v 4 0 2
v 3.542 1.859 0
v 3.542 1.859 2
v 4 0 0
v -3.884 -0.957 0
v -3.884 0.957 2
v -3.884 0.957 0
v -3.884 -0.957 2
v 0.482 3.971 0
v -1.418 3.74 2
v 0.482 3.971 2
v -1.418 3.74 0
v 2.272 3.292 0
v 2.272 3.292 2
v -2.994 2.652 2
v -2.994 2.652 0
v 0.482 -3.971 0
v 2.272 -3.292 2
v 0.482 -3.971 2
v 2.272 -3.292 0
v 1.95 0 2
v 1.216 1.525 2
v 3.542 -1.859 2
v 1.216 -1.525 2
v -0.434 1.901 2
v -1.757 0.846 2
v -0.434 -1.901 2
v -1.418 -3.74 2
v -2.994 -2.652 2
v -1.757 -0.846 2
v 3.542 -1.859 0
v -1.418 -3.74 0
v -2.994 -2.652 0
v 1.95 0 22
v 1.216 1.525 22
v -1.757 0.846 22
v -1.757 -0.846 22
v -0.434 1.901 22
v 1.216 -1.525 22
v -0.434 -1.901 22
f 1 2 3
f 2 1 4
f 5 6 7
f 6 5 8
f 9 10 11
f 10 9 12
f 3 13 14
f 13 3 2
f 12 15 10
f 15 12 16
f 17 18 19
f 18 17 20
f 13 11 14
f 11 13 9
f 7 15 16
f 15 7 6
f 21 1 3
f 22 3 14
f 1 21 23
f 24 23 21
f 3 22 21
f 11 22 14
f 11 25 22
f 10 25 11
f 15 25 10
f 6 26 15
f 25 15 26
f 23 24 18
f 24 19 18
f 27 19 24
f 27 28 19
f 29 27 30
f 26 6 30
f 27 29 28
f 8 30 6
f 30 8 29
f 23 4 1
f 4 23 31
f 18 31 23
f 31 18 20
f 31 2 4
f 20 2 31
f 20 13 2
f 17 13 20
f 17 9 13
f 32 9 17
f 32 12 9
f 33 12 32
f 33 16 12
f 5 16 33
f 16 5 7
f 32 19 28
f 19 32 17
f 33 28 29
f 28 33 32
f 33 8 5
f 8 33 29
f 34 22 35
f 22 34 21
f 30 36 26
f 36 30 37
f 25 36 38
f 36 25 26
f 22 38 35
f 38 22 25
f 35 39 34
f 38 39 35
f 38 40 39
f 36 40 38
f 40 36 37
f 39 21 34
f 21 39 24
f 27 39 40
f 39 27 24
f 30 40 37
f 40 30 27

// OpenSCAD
/*
Erica Umlor Wire Following Sensor Holder for MSE4777

Created: 04/16/2020
Description: This is for my GrowBot project
for senior design. This is the ppin that connects
each of the parts. Don't try to edit this code.
Most of it is not parametric, and it should fit just
fine with this this project. 
*/

pin(); 

// values
holeL = 15;    // length of pin hole
holeR = 2;     // pin hole radius
pR = holeR-.05; 

module pin() {
  union(){
    cylinder(2,holeR+2,holeR+2);
    cylinder(holeL+7,pR,pR);
  }
}
